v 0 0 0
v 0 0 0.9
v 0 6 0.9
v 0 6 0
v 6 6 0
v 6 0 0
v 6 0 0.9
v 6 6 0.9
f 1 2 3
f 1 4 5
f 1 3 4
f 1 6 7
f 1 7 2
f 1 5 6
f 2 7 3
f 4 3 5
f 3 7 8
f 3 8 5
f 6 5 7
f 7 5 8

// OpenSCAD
/* Warning, this is a very basic generator with a lot of approximation 
input data : [VQFN, LSX, 6x6x0.9mm, 44, , B, C04-17043B]
generated by com.zoubworld.electronics.cad.model3d.Basic
Date : Sun Feb 15 10:50:49 CET 2026
*/

//body
color("black")
translate([0,0,0])
cube([6.0,6.0,0.9], center=false);
